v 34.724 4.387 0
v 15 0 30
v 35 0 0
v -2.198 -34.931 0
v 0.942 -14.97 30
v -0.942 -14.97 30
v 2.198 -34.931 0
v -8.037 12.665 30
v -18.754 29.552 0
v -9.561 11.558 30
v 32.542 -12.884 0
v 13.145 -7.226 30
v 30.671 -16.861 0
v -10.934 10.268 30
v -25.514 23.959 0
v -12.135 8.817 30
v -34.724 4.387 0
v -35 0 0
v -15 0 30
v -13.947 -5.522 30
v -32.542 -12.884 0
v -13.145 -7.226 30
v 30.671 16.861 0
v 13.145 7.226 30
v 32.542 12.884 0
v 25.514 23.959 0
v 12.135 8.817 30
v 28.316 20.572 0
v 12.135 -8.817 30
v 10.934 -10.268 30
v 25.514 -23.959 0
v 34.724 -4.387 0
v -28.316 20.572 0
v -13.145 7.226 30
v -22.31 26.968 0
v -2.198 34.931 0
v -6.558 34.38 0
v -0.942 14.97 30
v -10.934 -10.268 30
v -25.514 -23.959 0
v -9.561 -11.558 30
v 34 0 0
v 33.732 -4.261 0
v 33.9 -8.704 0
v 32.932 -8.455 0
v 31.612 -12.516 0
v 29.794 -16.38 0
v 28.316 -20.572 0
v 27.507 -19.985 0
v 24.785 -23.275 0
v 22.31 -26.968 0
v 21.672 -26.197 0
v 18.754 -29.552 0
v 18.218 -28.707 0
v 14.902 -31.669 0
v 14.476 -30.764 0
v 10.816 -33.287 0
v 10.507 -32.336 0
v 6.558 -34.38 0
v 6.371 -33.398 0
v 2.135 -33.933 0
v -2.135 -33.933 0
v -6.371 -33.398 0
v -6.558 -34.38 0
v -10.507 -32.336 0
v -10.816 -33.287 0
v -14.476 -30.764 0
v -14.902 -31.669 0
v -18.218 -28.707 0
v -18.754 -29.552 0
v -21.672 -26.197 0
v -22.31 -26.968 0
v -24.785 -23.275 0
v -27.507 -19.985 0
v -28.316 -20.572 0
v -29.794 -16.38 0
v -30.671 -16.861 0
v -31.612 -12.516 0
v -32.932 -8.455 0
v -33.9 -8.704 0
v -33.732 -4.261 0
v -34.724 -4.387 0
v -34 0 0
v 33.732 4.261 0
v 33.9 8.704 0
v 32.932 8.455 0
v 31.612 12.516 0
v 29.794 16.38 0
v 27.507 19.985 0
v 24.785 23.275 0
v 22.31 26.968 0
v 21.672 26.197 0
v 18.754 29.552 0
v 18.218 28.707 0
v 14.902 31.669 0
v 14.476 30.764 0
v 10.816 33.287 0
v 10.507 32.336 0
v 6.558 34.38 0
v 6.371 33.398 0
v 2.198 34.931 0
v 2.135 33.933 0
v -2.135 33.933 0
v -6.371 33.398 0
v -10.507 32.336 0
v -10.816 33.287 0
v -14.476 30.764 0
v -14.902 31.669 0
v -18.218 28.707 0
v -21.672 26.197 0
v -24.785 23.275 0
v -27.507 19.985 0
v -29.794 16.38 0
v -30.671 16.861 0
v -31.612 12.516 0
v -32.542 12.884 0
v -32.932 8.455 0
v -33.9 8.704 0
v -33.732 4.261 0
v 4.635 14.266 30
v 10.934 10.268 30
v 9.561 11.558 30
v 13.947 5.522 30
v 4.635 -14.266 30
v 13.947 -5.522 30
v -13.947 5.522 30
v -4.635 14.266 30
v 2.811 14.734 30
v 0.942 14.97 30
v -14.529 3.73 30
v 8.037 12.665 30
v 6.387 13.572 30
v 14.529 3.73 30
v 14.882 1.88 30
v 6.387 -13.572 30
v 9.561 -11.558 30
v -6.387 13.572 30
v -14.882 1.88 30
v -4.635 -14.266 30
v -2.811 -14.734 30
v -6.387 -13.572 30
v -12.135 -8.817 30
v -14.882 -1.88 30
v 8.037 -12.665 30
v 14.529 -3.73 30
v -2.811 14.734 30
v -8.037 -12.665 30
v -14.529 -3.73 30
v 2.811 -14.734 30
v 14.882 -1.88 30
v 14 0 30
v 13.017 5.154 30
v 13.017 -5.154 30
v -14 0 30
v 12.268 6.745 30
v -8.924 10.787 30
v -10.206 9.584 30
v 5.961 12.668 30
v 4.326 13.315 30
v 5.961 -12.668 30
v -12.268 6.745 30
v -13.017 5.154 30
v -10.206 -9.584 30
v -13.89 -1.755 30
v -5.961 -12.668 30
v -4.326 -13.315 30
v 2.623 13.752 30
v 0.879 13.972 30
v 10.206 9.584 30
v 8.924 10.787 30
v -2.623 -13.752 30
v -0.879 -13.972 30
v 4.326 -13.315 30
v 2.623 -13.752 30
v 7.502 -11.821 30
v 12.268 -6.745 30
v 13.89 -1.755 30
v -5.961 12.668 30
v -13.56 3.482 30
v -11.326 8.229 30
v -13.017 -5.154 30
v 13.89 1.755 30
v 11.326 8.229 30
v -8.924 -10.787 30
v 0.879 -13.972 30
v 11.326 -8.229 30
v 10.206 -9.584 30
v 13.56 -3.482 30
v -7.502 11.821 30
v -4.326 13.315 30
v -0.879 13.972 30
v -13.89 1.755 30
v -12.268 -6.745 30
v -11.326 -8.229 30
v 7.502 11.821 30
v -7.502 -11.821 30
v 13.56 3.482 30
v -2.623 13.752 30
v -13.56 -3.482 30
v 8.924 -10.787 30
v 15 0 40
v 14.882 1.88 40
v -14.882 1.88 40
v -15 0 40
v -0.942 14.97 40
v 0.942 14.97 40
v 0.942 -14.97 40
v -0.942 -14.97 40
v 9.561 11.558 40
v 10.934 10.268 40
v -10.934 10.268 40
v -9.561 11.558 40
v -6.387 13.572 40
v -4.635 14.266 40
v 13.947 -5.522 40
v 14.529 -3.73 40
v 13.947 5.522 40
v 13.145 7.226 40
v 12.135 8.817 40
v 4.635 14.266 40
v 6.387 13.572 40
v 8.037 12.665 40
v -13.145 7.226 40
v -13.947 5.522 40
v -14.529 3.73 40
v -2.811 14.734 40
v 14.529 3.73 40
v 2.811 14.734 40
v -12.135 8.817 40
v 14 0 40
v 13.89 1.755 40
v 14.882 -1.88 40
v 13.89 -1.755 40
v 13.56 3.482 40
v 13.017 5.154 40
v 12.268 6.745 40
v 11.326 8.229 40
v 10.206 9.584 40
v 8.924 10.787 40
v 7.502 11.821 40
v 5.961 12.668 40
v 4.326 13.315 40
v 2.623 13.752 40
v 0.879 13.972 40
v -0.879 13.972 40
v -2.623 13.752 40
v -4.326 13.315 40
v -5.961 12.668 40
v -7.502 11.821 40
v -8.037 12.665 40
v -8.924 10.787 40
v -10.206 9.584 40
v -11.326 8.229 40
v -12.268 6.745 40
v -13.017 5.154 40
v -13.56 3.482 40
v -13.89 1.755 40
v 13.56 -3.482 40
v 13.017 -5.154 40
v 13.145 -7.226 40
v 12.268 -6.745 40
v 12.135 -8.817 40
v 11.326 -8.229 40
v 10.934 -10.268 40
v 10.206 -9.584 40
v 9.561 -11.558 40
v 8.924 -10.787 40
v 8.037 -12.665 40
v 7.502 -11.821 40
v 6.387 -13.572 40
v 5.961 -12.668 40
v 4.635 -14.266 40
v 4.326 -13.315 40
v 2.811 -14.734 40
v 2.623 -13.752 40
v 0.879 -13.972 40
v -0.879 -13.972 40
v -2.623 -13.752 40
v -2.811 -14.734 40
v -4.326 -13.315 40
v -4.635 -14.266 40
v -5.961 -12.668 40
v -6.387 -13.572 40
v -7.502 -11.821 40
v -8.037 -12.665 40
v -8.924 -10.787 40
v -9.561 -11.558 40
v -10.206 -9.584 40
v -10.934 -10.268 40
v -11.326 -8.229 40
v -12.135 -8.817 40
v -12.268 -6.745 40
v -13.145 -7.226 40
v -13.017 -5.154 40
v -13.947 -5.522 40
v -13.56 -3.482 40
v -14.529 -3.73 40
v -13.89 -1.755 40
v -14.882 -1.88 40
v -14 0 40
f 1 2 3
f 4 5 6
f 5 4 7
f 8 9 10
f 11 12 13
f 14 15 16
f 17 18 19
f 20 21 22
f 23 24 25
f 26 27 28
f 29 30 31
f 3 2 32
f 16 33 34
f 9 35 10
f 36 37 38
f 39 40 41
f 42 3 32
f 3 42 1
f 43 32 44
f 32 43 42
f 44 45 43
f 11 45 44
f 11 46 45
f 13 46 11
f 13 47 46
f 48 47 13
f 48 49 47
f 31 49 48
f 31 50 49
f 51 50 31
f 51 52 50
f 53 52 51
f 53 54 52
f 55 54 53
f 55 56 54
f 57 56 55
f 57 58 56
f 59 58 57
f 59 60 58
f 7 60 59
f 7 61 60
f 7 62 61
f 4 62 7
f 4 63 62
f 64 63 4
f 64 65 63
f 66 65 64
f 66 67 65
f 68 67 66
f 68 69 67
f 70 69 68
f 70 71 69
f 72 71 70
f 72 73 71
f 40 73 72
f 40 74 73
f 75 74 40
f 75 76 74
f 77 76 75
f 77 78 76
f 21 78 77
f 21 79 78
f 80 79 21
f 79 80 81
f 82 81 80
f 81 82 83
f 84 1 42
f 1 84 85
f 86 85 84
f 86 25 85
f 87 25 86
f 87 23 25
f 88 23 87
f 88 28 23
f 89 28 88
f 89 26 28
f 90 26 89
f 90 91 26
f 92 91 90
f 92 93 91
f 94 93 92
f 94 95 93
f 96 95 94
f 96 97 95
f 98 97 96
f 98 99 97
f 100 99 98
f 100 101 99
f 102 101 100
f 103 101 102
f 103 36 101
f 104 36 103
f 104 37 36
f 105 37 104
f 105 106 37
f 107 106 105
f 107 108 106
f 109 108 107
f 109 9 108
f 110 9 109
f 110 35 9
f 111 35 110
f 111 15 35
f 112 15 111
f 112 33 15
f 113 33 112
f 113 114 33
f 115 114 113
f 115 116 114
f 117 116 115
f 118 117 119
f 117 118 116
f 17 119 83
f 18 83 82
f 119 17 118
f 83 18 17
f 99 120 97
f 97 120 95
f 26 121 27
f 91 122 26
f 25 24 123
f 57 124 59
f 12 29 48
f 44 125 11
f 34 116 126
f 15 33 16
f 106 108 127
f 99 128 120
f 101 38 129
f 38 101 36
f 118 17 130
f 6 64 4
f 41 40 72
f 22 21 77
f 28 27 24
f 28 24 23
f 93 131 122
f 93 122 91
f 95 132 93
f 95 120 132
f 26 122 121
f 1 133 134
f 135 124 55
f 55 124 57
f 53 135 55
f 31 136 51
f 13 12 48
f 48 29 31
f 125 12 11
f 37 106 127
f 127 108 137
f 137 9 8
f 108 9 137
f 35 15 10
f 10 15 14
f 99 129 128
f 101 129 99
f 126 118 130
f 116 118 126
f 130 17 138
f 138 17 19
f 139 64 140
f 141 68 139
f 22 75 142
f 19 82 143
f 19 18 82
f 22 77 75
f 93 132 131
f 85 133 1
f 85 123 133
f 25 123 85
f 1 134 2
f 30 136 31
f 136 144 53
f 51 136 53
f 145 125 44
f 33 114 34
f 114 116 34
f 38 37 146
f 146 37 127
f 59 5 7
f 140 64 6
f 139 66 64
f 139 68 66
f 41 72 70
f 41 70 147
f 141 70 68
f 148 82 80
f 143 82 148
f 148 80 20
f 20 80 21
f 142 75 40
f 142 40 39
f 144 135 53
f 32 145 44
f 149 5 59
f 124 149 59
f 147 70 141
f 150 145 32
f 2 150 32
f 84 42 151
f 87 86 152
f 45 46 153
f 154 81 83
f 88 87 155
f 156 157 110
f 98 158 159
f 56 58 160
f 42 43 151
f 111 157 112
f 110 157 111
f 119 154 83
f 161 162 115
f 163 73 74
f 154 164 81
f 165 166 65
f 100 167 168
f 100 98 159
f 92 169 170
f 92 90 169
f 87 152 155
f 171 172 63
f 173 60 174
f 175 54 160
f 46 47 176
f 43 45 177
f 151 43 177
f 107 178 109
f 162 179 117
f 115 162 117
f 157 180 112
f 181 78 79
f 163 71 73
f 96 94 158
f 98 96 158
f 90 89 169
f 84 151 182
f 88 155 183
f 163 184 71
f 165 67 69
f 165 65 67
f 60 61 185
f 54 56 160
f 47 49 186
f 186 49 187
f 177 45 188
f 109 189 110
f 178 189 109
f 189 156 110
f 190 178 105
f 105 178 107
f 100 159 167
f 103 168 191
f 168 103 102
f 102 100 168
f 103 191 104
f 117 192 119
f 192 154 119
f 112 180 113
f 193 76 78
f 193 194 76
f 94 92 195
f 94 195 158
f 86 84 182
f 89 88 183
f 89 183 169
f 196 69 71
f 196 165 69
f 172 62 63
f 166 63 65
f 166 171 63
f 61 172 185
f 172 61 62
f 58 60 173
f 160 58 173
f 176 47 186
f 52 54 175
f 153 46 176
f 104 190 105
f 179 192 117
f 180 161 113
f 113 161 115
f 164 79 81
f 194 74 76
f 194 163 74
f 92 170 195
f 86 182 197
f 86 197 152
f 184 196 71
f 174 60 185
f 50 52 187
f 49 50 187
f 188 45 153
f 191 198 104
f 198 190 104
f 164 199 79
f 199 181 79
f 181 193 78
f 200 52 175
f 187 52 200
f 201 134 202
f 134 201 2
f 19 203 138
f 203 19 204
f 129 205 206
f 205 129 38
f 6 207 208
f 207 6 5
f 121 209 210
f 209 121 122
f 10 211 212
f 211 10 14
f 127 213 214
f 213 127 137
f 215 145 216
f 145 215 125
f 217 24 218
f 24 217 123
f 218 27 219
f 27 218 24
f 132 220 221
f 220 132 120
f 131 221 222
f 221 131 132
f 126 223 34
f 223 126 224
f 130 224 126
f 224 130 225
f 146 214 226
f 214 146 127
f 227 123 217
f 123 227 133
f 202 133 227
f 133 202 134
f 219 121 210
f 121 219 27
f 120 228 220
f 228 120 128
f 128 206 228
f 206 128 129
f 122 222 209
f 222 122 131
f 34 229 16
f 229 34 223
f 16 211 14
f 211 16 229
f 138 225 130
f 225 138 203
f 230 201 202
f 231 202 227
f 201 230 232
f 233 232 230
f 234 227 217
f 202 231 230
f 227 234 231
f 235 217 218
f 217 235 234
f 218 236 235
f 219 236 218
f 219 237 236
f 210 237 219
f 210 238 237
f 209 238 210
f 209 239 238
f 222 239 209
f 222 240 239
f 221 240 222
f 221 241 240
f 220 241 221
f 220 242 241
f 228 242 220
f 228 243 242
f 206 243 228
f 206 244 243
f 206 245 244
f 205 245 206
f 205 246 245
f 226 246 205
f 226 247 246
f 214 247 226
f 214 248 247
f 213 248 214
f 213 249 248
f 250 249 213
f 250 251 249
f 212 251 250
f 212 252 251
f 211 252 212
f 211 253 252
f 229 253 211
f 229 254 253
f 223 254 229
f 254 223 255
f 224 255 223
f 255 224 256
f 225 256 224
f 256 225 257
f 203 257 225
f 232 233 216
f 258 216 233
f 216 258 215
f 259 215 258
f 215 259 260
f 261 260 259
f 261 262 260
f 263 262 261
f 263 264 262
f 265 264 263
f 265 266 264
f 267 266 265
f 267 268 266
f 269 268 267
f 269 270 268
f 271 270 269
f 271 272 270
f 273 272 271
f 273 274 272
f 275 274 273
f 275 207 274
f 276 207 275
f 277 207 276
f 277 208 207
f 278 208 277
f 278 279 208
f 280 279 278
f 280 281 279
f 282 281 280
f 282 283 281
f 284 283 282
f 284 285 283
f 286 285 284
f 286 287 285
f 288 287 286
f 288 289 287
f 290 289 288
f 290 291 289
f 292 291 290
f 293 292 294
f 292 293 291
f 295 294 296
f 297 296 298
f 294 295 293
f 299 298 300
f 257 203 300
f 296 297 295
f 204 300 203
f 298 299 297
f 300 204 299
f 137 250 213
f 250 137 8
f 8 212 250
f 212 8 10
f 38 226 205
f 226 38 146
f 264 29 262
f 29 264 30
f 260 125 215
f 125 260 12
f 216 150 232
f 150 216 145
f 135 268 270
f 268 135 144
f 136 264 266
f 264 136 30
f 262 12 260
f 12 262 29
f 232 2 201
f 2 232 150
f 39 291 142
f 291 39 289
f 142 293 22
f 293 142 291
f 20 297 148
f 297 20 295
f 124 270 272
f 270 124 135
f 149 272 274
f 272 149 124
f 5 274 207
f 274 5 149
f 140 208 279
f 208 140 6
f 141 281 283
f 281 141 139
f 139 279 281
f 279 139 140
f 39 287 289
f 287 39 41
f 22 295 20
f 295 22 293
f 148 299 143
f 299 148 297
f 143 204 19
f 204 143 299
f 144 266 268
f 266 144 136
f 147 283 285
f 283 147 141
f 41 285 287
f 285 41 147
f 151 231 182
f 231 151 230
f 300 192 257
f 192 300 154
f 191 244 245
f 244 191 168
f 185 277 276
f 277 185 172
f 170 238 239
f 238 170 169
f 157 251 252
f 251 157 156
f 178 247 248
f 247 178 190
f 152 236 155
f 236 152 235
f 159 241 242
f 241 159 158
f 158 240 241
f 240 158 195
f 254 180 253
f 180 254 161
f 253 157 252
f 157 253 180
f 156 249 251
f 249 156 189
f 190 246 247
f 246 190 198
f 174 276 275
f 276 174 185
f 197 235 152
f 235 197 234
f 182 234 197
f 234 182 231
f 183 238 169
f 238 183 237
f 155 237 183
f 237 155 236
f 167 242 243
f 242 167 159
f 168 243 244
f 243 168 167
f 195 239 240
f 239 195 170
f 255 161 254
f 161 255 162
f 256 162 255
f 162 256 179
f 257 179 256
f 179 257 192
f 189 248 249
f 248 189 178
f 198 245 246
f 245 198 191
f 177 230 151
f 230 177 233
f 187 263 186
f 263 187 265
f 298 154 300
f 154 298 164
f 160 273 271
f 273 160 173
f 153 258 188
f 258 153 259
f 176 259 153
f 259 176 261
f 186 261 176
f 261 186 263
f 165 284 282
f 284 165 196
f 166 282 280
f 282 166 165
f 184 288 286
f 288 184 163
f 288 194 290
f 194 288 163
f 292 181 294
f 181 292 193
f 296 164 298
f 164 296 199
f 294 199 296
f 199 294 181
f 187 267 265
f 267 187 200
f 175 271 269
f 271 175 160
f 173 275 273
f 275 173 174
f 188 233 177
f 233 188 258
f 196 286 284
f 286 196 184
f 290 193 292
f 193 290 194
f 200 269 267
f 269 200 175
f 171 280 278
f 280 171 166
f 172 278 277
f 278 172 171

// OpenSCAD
$fn = 50;


difference() {
	union() {
		translate(v = [0, 0, 0]) {
			rotate(a = [0, 0, 0]) {
				difference() {
					union() {
						cylinder(h = 30, r1 = 35.0000000000, r2 = 15.0000000000);
					}
					union() {
						cylinder(h = 30, r1 = 34.0000000000, r2 = 14.0000000000);
					}
				}
			}
		}
		translate(v = [0, 0, 30]) {
			rotate(a = [0, 0, 0]) {
				difference() {
					union() {
						cylinder(h = 10, r = 15.0000000000);
					}
					union() {
						cylinder(h = 10, r = 14.0000000000);
					}
				}
			}
		}
		*color(alpha = 1.0000000000, c = "gray") {
			translate(v = [0, 14, 0]) {
				linear_extrude(height = 1) {
					text(font = "Arial:style=Bold", halign = "center", size = 4.5000000000, text = "COMMENT description oobb_cylinder_hollow_shape_p_type_all_save_type_1_width_1_height_1_thickness_70_mm_top_30_mm_bottom_extra_35.0_r1_15.0_r2_1_wall_thickness_30_h", valign = "center");
				}
			}
		}
		*color(alpha = 1.0000000000, c = "gray") {
			translate(v = [0, 14, 30]) {
				linear_extrude(height = 1) {
					text(font = "Arial:style=Bold", halign = "center", size = 4.5000000000, text = "COMMENT description oobb_cylinder_hollow_shape_p_type_0_0_30_pos_all_save_type_1_width_1_height_1_thickness_70_mm_top_30_mm_bottom_extra_15.0_r_1_wall_thickness_10_h", valign = "center");
				}
			}
		}
	}
	union();
}
